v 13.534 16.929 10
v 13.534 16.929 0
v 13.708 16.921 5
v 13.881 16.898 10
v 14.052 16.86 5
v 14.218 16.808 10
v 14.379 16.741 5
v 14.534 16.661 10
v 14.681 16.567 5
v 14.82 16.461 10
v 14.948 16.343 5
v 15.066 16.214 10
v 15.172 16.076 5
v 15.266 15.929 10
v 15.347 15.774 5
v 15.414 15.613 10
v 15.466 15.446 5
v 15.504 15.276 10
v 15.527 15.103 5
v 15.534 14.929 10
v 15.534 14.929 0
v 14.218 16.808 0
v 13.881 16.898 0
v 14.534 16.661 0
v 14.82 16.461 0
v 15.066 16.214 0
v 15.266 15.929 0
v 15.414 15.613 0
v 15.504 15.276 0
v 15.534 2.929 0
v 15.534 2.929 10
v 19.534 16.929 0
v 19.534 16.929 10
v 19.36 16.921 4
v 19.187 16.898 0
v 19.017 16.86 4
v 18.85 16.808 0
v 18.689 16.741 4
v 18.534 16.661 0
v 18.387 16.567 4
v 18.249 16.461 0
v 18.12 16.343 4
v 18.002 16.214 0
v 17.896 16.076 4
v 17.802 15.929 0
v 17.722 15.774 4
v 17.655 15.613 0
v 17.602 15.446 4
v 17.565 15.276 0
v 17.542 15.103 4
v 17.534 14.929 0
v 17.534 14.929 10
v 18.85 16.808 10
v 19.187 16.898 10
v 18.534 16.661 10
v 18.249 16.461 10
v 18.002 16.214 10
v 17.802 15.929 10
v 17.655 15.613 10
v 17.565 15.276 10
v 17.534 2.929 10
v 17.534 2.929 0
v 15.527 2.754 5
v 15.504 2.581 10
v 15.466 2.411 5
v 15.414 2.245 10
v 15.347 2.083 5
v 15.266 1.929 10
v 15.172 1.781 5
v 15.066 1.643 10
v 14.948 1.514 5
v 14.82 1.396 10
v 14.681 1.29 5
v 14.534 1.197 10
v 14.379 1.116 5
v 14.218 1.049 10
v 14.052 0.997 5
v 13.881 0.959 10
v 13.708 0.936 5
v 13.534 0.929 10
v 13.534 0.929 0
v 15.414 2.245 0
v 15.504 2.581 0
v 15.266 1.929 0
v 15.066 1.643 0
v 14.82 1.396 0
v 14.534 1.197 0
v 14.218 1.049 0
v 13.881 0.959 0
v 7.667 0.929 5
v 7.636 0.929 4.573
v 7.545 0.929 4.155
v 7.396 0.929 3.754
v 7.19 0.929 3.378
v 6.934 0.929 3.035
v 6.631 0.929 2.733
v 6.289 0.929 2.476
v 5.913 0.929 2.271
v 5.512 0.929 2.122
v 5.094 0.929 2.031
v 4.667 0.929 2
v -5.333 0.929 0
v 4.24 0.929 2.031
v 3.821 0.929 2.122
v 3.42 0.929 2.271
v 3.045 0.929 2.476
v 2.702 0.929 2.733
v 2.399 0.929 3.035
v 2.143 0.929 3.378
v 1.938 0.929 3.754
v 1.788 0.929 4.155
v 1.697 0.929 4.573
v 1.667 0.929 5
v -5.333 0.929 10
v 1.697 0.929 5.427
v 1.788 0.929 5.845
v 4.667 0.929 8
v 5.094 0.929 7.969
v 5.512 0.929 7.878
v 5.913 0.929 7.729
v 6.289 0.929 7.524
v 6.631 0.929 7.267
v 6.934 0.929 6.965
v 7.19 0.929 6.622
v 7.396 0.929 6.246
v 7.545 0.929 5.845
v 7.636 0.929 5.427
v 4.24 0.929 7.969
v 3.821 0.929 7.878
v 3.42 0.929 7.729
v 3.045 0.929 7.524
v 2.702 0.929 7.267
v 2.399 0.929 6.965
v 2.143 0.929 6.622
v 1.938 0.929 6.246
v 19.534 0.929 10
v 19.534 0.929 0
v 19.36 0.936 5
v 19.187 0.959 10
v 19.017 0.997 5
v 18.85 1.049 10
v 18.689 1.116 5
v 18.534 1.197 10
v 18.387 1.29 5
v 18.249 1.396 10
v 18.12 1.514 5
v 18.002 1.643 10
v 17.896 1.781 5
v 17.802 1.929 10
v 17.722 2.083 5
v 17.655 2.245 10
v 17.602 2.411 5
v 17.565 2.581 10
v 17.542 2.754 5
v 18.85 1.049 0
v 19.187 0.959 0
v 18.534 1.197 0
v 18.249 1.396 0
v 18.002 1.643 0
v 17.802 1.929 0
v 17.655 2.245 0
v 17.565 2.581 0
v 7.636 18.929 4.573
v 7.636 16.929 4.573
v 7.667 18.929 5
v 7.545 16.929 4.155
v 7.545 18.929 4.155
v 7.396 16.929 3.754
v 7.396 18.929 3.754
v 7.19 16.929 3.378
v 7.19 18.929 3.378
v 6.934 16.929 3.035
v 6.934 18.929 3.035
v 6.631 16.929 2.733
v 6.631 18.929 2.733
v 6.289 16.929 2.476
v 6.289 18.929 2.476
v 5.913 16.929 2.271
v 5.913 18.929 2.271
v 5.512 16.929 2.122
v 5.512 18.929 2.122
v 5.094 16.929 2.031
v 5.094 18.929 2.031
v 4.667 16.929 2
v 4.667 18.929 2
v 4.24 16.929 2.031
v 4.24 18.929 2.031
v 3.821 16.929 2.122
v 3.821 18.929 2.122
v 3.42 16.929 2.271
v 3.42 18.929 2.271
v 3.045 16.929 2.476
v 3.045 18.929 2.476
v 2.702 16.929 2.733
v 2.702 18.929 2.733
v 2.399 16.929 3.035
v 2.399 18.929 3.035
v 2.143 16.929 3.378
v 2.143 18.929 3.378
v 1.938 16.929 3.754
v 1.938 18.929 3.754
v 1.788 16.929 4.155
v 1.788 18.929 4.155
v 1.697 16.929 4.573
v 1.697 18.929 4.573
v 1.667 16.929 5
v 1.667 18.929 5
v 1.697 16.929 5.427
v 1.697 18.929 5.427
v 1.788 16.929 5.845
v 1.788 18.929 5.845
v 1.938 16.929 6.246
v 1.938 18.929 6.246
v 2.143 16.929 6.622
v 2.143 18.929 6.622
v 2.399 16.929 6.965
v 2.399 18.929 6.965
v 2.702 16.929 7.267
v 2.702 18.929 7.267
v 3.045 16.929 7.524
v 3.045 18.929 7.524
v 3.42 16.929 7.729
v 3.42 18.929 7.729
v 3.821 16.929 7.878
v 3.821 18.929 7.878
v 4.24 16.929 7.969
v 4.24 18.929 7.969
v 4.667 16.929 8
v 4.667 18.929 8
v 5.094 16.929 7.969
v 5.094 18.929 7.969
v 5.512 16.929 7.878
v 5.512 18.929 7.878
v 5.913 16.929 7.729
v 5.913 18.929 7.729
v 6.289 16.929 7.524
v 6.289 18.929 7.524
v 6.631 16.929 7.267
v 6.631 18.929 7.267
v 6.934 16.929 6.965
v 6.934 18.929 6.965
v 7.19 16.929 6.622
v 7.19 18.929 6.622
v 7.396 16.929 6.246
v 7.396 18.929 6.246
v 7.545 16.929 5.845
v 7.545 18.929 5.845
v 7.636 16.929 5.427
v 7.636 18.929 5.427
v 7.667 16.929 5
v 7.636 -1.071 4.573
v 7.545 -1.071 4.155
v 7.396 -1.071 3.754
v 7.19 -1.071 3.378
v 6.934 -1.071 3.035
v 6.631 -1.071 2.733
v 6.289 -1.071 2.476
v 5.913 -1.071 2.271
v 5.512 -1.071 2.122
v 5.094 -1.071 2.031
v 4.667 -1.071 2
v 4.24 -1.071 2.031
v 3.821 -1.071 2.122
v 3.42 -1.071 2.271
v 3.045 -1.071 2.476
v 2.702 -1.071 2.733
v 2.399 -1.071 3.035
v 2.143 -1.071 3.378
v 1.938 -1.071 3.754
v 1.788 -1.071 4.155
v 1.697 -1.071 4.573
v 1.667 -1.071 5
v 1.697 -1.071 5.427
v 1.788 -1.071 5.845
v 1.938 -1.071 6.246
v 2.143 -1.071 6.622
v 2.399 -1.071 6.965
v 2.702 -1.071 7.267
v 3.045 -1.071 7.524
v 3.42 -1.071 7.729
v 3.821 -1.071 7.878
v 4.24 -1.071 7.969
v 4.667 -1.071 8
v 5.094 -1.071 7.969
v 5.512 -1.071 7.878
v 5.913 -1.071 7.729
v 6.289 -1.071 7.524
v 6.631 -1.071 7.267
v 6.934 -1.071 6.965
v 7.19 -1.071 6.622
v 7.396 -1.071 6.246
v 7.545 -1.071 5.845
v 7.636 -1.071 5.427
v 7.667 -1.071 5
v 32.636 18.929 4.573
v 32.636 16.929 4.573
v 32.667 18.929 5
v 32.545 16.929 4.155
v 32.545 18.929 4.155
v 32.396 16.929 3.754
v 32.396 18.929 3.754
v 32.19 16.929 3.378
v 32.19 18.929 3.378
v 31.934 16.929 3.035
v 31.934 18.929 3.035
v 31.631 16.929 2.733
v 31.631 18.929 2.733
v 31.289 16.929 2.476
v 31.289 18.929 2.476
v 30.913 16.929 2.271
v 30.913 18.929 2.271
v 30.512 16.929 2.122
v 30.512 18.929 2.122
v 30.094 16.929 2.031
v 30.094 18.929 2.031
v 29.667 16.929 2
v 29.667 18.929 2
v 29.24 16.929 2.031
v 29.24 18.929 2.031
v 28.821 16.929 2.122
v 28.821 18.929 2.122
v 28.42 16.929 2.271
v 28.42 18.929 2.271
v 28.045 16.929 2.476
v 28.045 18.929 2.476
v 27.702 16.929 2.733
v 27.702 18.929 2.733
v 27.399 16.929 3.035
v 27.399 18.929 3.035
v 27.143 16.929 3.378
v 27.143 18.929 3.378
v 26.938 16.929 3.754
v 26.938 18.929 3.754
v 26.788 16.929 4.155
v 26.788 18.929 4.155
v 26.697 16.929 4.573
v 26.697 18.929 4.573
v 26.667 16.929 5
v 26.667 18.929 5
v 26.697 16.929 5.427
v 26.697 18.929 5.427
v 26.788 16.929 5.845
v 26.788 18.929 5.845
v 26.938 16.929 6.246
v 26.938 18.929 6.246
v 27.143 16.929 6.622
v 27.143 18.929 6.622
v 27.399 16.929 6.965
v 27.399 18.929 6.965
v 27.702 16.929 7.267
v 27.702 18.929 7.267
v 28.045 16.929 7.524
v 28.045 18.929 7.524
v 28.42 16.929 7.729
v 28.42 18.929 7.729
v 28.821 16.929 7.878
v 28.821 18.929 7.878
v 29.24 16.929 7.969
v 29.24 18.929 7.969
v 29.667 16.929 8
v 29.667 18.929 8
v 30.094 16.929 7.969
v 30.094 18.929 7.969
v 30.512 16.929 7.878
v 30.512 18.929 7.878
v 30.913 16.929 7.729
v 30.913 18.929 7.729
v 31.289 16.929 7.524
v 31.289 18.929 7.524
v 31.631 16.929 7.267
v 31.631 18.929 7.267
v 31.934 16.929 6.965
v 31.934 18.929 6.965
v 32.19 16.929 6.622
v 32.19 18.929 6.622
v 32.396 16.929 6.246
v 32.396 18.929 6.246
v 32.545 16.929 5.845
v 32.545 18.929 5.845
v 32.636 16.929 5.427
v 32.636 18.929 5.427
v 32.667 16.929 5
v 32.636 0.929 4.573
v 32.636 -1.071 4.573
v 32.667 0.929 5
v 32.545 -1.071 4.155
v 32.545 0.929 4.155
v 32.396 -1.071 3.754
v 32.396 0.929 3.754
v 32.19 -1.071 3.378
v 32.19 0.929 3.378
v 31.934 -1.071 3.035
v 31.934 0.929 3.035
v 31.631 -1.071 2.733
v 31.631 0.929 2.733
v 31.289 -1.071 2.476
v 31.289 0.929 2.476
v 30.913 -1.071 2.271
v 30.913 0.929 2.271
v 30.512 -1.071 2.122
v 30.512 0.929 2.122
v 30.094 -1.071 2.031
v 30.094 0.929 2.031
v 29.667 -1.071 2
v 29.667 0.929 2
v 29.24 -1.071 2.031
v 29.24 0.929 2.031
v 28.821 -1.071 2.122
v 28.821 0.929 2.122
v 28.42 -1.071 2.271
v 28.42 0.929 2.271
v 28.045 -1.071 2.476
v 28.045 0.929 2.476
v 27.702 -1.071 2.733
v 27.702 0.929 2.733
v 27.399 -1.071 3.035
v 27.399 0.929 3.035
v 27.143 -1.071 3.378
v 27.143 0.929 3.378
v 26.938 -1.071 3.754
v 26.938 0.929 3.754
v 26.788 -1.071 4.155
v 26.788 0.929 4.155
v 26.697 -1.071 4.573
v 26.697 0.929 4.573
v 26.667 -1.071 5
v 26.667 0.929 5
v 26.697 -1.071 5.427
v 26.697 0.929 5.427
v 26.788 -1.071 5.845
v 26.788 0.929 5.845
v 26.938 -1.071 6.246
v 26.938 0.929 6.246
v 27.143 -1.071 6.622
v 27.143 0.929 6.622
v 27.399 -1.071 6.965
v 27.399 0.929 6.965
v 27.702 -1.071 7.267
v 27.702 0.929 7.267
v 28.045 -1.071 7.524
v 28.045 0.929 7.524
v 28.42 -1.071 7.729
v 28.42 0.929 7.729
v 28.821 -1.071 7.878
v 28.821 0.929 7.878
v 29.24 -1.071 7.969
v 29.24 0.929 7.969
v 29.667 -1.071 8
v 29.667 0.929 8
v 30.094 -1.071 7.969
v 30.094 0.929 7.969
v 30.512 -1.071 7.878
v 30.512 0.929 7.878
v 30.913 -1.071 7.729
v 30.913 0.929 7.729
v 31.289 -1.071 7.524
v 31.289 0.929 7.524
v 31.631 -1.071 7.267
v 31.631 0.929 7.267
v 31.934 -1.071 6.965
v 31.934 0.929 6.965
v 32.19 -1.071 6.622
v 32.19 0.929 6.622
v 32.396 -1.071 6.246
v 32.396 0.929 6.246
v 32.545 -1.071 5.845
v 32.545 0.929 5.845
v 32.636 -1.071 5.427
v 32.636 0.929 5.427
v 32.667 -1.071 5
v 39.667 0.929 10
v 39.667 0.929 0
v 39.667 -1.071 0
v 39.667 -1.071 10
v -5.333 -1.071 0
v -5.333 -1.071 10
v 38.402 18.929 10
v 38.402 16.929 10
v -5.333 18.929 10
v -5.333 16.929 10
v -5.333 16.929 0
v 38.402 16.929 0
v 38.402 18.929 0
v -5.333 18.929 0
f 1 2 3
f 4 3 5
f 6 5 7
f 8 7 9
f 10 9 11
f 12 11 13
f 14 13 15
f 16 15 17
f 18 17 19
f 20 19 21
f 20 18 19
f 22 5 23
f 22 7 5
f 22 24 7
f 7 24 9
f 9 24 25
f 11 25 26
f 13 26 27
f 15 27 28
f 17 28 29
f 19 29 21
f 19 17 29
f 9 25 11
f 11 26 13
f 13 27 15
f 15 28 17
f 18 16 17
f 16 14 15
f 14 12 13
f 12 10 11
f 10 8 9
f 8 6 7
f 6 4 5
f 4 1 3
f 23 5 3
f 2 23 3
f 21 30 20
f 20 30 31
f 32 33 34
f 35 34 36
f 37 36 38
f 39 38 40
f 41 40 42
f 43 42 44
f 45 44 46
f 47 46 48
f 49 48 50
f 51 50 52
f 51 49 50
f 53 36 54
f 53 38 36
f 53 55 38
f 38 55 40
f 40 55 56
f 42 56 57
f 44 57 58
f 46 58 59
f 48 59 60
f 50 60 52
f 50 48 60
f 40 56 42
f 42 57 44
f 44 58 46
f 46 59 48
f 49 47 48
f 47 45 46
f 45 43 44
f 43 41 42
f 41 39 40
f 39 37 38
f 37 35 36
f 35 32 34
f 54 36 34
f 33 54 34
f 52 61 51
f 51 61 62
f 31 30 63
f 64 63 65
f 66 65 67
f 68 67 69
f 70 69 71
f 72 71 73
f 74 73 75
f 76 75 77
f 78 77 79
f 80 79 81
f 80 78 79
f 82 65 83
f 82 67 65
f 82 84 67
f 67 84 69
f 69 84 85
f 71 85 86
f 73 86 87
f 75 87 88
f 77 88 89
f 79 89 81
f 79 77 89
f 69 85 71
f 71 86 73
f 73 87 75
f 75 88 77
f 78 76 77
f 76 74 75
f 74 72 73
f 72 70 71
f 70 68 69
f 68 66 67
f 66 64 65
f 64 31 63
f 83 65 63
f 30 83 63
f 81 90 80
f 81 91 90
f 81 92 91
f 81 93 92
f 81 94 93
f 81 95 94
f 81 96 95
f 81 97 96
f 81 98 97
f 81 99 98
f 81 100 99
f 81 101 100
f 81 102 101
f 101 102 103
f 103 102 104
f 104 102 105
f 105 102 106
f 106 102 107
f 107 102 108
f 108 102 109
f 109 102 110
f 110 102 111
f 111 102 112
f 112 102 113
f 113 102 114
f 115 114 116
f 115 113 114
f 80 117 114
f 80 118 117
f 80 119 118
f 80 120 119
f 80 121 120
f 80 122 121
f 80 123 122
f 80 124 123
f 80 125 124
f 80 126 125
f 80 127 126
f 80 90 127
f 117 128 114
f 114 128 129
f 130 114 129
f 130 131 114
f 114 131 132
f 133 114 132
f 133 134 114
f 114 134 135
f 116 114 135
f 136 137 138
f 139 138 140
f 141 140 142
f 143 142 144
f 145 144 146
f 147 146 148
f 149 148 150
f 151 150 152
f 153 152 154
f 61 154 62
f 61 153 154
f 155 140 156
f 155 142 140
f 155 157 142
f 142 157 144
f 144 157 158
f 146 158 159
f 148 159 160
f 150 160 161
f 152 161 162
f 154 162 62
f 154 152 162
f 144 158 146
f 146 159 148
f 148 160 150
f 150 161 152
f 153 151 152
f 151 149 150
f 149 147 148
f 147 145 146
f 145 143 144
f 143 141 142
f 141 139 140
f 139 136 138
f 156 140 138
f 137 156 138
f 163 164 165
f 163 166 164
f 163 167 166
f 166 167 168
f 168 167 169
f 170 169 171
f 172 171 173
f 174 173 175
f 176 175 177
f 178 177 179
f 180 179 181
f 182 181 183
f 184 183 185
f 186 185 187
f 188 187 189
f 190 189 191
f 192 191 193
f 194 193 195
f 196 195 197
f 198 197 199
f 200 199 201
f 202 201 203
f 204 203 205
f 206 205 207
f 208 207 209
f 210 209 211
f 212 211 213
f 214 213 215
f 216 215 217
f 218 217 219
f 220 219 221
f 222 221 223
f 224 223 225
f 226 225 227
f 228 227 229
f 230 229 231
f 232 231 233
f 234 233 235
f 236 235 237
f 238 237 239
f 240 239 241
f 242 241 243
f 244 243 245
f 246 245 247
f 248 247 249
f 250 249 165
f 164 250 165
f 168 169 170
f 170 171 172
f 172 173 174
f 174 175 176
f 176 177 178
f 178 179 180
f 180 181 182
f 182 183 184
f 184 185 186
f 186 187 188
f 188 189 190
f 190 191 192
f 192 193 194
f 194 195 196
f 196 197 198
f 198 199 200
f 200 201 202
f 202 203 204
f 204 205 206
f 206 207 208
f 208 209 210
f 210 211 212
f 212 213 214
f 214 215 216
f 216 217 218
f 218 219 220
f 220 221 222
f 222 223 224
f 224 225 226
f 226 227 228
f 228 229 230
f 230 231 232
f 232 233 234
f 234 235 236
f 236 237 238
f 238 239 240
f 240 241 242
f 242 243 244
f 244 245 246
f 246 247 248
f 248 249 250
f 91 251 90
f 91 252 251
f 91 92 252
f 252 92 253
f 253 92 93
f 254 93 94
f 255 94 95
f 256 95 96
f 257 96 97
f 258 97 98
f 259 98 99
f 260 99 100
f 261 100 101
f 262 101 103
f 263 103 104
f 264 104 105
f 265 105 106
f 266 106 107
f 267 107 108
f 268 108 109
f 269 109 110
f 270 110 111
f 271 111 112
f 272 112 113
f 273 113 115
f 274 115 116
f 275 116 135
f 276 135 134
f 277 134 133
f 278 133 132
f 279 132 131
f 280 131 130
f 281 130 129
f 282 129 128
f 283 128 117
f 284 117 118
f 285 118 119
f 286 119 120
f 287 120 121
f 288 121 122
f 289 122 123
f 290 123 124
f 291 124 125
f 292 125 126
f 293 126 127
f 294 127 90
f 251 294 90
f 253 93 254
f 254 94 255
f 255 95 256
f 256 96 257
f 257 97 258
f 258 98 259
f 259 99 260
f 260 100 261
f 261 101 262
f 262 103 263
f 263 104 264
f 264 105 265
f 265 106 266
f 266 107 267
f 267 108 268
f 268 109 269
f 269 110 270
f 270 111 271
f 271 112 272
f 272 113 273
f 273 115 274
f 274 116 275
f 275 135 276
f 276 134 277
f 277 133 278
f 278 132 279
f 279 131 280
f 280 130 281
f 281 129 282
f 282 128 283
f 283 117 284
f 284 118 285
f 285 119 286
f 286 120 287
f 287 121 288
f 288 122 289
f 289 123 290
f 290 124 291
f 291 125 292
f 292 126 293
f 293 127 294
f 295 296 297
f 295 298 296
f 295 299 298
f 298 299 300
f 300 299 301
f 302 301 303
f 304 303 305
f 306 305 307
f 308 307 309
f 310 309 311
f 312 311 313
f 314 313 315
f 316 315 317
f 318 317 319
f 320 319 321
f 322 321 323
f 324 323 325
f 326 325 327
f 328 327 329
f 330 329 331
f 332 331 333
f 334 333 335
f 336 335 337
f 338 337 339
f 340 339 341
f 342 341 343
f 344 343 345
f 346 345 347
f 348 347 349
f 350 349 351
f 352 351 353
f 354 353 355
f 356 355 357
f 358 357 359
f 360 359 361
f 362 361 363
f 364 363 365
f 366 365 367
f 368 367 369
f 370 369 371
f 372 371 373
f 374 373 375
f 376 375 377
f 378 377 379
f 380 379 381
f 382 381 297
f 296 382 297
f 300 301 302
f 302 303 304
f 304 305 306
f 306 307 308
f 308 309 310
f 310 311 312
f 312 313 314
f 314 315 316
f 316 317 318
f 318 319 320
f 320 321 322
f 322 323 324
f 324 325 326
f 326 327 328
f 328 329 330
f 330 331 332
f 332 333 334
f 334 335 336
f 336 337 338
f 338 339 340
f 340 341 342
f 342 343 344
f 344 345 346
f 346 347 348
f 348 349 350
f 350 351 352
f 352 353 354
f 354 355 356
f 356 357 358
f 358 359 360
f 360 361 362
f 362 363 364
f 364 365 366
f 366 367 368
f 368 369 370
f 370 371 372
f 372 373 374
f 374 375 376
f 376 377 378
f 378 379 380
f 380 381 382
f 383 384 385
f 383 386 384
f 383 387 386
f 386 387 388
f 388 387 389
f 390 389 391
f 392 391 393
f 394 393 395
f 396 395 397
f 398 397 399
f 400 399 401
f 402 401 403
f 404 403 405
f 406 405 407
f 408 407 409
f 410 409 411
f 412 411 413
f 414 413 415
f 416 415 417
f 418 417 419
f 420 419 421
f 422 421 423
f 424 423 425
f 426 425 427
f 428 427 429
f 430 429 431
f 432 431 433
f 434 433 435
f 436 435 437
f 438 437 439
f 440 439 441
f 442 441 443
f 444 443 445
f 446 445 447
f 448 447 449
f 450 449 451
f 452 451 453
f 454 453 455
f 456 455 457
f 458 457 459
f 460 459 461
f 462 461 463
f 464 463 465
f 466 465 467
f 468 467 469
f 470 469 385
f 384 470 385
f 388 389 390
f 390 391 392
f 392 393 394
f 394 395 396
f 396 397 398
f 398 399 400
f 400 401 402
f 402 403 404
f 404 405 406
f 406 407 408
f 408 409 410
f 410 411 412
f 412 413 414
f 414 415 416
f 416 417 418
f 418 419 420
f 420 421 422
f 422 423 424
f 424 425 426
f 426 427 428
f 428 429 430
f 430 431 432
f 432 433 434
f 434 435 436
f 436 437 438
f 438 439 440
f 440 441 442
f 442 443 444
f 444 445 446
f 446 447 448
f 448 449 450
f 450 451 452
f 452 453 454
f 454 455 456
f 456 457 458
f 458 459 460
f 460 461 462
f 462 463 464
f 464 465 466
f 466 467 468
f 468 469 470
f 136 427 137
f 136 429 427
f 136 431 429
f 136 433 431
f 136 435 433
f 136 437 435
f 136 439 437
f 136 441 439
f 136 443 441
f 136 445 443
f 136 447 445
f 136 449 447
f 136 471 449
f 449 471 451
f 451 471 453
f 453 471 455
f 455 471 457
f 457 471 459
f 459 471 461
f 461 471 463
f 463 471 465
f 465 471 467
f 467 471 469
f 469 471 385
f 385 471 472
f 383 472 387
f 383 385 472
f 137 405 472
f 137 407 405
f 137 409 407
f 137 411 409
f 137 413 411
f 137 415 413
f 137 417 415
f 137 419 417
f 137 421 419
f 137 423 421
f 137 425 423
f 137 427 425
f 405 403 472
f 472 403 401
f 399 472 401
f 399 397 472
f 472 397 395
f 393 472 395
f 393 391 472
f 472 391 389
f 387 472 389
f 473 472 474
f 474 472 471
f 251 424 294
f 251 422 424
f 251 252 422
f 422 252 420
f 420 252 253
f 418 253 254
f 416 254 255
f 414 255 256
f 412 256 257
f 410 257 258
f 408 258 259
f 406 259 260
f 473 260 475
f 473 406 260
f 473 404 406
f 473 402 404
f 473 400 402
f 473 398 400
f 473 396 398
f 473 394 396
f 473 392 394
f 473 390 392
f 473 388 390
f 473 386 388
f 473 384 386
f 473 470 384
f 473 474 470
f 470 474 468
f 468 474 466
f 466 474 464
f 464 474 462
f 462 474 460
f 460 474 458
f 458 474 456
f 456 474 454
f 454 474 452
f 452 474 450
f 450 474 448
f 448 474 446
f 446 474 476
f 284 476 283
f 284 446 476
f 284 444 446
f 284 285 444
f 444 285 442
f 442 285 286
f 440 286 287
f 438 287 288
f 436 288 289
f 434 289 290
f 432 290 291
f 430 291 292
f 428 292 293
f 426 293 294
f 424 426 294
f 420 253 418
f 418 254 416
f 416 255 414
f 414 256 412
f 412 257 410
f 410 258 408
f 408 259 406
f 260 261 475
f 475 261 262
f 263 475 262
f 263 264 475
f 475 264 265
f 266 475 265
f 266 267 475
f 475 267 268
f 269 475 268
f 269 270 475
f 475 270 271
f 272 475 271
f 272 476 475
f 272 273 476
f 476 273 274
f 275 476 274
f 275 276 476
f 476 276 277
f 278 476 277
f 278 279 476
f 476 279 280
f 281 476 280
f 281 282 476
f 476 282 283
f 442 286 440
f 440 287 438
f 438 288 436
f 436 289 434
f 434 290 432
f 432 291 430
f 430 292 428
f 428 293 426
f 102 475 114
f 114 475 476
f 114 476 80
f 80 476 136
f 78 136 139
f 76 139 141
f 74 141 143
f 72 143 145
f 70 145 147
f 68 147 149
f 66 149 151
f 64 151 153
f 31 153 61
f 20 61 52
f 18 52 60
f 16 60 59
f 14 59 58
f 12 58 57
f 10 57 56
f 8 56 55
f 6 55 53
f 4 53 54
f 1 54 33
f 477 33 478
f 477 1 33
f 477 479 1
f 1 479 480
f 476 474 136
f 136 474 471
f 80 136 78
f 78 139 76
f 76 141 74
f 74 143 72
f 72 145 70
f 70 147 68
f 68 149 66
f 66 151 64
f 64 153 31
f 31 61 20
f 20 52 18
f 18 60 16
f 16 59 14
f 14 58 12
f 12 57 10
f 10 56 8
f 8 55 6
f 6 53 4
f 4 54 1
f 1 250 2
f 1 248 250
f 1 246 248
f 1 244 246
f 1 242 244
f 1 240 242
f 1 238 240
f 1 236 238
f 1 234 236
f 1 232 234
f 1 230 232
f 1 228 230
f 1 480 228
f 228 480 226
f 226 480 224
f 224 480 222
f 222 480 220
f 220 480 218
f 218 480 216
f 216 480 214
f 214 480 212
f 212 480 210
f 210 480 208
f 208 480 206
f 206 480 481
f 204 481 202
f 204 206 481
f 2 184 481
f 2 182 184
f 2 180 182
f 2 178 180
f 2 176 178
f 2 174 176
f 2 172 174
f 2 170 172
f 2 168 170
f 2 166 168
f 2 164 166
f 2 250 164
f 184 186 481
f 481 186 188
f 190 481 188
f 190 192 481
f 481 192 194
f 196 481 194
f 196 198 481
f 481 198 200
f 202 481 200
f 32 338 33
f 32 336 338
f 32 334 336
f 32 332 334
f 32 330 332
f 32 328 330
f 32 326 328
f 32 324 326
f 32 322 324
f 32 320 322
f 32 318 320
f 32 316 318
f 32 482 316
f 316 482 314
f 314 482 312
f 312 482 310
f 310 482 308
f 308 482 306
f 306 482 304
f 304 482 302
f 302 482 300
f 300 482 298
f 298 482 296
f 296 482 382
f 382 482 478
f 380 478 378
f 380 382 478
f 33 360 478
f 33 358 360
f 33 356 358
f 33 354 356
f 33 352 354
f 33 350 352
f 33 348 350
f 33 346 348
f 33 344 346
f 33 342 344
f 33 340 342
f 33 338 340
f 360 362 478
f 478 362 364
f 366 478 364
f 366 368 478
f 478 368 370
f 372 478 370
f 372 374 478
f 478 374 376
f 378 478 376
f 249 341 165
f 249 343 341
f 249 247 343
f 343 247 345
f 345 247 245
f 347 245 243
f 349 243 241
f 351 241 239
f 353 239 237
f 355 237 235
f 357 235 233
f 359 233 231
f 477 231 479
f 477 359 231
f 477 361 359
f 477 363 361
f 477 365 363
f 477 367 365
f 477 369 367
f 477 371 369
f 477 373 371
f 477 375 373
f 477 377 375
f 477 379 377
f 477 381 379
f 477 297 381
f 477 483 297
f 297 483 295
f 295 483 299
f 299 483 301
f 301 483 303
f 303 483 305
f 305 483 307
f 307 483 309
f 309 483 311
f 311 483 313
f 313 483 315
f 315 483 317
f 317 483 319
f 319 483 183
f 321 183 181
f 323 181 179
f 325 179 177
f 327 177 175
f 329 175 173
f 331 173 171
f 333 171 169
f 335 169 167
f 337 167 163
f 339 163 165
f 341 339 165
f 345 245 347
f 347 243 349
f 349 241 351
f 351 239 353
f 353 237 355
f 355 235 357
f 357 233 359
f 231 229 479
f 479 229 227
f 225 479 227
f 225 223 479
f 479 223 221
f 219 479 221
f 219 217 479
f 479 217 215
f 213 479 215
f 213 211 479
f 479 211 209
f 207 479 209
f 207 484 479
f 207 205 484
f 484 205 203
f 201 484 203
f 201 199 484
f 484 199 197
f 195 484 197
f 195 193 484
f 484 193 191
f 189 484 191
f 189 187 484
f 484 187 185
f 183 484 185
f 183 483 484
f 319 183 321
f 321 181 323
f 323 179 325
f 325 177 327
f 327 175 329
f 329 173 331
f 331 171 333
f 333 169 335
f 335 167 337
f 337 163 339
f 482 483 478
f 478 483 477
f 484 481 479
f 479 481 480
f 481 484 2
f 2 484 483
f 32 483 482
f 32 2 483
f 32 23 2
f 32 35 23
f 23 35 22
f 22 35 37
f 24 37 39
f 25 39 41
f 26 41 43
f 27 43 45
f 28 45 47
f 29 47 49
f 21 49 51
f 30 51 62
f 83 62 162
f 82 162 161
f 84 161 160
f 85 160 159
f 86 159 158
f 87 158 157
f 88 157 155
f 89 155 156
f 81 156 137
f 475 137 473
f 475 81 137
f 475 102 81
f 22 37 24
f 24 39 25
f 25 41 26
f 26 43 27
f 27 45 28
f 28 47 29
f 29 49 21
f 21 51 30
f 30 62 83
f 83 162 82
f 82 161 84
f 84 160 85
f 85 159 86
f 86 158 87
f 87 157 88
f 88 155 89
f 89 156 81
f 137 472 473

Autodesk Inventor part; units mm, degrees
ref_plane "YZ Plane" through (0, 0, 0) normal (1, 0, 0) x (0, 1, 0)
ref_plane "XZ Plane" through (0, 0, 0) normal (0, 1, 0) x (-1, 0, 0)
ref_plane "XY Plane" through (0, 0, 0) normal (0, 0, 1) x (1, 0, 0)
sketch "Sketch1" plane through (0, 0, 0) normal (0, 0, 1) x (1, 0, 0)
  line L0 (-5.3333, 0.9286) -> (39.6667, 0.9286)
  line L1 (39.6667, 0.9286) -> (39.6667, -1.0714)
  line L2 (39.6667, -1.0714) -> (-5.3333, -1.0714)
  line L3 (-5.3333, -1.0714) -> (-5.3333, 0.9286)
  line L4 (-5.3333, 18.9286) -> (38.4017, 18.9286)
  line L5 (38.4017, 18.9286) -> (38.4017, 16.9286)
  line L6 (38.4017, 16.9286) -> (-5.3333, 16.9286)
  line L7 (-5.3333, 16.9286) -> (-5.3333, 18.9286)
  line L8 (16.5342, 16.9286) -> (15.5342, 16.9286)
  line L9 (15.5342, 16.9286) -> (15.5342, 0.9286)
  line L10 (15.5342, 0.9286) -> (16.5342, 0.9286)
  line L11 (16.5342, 0.9286) -> (16.5342, 16.9286)
  line L12 (16.5342, 16.9286) -> (17.5342, 16.9286)
  line L13 (17.5342, 16.9286) -> (17.5342, 0.9286)
  line L14 (17.5342, 0.9286) -> (16.5342, 0.9286)
  line L15 (16.5342, 0.9286) -> (16.5342, 16.9286)
  point P0 (0, 0)
  dimension "d0" = 2
  dimension "d1" = 45
  dimension "d2" = 2
  dimension "d3" = 1
  dimension "d4" = 1
  dimension "d5" = 20
extrude "Extrusion1" add sketch "Sketch1" along normal blind 10
sketch "Sketch2" plane through (-5.3333, 18.9286, 0) normal (0, 1, 0) x (1, 0, 0)
  circle A0 centre (10, -5) radius 3
  circle A1 centre (35, -5) radius 3
  line L0 (0, 0) -> (0, -10) projected
  line L1 (45, 0) -> (45, -10) projected
  line L2 (43.735, 0) -> (0, 0) projected
  point P0 (5.3333, 0)
  dimension "d8" = 6
  dimension "d9" = 6
  dimension "d10" = 10
  dimension "d11" = 10
  dimension "d12" = 5
  dimension "d13" = 5
extrude "Extrusion2" cut sketch "Sketch2" against normal blind 20
fillet "Fillet1" radius 2 4 edges at (17.5342, 0.9286, 5) (15.5342, 0.9286, 5) (17.5342, 16.9286, 5) (15.5342, 16.9286, 5)
properties part number "Slider ver2"
